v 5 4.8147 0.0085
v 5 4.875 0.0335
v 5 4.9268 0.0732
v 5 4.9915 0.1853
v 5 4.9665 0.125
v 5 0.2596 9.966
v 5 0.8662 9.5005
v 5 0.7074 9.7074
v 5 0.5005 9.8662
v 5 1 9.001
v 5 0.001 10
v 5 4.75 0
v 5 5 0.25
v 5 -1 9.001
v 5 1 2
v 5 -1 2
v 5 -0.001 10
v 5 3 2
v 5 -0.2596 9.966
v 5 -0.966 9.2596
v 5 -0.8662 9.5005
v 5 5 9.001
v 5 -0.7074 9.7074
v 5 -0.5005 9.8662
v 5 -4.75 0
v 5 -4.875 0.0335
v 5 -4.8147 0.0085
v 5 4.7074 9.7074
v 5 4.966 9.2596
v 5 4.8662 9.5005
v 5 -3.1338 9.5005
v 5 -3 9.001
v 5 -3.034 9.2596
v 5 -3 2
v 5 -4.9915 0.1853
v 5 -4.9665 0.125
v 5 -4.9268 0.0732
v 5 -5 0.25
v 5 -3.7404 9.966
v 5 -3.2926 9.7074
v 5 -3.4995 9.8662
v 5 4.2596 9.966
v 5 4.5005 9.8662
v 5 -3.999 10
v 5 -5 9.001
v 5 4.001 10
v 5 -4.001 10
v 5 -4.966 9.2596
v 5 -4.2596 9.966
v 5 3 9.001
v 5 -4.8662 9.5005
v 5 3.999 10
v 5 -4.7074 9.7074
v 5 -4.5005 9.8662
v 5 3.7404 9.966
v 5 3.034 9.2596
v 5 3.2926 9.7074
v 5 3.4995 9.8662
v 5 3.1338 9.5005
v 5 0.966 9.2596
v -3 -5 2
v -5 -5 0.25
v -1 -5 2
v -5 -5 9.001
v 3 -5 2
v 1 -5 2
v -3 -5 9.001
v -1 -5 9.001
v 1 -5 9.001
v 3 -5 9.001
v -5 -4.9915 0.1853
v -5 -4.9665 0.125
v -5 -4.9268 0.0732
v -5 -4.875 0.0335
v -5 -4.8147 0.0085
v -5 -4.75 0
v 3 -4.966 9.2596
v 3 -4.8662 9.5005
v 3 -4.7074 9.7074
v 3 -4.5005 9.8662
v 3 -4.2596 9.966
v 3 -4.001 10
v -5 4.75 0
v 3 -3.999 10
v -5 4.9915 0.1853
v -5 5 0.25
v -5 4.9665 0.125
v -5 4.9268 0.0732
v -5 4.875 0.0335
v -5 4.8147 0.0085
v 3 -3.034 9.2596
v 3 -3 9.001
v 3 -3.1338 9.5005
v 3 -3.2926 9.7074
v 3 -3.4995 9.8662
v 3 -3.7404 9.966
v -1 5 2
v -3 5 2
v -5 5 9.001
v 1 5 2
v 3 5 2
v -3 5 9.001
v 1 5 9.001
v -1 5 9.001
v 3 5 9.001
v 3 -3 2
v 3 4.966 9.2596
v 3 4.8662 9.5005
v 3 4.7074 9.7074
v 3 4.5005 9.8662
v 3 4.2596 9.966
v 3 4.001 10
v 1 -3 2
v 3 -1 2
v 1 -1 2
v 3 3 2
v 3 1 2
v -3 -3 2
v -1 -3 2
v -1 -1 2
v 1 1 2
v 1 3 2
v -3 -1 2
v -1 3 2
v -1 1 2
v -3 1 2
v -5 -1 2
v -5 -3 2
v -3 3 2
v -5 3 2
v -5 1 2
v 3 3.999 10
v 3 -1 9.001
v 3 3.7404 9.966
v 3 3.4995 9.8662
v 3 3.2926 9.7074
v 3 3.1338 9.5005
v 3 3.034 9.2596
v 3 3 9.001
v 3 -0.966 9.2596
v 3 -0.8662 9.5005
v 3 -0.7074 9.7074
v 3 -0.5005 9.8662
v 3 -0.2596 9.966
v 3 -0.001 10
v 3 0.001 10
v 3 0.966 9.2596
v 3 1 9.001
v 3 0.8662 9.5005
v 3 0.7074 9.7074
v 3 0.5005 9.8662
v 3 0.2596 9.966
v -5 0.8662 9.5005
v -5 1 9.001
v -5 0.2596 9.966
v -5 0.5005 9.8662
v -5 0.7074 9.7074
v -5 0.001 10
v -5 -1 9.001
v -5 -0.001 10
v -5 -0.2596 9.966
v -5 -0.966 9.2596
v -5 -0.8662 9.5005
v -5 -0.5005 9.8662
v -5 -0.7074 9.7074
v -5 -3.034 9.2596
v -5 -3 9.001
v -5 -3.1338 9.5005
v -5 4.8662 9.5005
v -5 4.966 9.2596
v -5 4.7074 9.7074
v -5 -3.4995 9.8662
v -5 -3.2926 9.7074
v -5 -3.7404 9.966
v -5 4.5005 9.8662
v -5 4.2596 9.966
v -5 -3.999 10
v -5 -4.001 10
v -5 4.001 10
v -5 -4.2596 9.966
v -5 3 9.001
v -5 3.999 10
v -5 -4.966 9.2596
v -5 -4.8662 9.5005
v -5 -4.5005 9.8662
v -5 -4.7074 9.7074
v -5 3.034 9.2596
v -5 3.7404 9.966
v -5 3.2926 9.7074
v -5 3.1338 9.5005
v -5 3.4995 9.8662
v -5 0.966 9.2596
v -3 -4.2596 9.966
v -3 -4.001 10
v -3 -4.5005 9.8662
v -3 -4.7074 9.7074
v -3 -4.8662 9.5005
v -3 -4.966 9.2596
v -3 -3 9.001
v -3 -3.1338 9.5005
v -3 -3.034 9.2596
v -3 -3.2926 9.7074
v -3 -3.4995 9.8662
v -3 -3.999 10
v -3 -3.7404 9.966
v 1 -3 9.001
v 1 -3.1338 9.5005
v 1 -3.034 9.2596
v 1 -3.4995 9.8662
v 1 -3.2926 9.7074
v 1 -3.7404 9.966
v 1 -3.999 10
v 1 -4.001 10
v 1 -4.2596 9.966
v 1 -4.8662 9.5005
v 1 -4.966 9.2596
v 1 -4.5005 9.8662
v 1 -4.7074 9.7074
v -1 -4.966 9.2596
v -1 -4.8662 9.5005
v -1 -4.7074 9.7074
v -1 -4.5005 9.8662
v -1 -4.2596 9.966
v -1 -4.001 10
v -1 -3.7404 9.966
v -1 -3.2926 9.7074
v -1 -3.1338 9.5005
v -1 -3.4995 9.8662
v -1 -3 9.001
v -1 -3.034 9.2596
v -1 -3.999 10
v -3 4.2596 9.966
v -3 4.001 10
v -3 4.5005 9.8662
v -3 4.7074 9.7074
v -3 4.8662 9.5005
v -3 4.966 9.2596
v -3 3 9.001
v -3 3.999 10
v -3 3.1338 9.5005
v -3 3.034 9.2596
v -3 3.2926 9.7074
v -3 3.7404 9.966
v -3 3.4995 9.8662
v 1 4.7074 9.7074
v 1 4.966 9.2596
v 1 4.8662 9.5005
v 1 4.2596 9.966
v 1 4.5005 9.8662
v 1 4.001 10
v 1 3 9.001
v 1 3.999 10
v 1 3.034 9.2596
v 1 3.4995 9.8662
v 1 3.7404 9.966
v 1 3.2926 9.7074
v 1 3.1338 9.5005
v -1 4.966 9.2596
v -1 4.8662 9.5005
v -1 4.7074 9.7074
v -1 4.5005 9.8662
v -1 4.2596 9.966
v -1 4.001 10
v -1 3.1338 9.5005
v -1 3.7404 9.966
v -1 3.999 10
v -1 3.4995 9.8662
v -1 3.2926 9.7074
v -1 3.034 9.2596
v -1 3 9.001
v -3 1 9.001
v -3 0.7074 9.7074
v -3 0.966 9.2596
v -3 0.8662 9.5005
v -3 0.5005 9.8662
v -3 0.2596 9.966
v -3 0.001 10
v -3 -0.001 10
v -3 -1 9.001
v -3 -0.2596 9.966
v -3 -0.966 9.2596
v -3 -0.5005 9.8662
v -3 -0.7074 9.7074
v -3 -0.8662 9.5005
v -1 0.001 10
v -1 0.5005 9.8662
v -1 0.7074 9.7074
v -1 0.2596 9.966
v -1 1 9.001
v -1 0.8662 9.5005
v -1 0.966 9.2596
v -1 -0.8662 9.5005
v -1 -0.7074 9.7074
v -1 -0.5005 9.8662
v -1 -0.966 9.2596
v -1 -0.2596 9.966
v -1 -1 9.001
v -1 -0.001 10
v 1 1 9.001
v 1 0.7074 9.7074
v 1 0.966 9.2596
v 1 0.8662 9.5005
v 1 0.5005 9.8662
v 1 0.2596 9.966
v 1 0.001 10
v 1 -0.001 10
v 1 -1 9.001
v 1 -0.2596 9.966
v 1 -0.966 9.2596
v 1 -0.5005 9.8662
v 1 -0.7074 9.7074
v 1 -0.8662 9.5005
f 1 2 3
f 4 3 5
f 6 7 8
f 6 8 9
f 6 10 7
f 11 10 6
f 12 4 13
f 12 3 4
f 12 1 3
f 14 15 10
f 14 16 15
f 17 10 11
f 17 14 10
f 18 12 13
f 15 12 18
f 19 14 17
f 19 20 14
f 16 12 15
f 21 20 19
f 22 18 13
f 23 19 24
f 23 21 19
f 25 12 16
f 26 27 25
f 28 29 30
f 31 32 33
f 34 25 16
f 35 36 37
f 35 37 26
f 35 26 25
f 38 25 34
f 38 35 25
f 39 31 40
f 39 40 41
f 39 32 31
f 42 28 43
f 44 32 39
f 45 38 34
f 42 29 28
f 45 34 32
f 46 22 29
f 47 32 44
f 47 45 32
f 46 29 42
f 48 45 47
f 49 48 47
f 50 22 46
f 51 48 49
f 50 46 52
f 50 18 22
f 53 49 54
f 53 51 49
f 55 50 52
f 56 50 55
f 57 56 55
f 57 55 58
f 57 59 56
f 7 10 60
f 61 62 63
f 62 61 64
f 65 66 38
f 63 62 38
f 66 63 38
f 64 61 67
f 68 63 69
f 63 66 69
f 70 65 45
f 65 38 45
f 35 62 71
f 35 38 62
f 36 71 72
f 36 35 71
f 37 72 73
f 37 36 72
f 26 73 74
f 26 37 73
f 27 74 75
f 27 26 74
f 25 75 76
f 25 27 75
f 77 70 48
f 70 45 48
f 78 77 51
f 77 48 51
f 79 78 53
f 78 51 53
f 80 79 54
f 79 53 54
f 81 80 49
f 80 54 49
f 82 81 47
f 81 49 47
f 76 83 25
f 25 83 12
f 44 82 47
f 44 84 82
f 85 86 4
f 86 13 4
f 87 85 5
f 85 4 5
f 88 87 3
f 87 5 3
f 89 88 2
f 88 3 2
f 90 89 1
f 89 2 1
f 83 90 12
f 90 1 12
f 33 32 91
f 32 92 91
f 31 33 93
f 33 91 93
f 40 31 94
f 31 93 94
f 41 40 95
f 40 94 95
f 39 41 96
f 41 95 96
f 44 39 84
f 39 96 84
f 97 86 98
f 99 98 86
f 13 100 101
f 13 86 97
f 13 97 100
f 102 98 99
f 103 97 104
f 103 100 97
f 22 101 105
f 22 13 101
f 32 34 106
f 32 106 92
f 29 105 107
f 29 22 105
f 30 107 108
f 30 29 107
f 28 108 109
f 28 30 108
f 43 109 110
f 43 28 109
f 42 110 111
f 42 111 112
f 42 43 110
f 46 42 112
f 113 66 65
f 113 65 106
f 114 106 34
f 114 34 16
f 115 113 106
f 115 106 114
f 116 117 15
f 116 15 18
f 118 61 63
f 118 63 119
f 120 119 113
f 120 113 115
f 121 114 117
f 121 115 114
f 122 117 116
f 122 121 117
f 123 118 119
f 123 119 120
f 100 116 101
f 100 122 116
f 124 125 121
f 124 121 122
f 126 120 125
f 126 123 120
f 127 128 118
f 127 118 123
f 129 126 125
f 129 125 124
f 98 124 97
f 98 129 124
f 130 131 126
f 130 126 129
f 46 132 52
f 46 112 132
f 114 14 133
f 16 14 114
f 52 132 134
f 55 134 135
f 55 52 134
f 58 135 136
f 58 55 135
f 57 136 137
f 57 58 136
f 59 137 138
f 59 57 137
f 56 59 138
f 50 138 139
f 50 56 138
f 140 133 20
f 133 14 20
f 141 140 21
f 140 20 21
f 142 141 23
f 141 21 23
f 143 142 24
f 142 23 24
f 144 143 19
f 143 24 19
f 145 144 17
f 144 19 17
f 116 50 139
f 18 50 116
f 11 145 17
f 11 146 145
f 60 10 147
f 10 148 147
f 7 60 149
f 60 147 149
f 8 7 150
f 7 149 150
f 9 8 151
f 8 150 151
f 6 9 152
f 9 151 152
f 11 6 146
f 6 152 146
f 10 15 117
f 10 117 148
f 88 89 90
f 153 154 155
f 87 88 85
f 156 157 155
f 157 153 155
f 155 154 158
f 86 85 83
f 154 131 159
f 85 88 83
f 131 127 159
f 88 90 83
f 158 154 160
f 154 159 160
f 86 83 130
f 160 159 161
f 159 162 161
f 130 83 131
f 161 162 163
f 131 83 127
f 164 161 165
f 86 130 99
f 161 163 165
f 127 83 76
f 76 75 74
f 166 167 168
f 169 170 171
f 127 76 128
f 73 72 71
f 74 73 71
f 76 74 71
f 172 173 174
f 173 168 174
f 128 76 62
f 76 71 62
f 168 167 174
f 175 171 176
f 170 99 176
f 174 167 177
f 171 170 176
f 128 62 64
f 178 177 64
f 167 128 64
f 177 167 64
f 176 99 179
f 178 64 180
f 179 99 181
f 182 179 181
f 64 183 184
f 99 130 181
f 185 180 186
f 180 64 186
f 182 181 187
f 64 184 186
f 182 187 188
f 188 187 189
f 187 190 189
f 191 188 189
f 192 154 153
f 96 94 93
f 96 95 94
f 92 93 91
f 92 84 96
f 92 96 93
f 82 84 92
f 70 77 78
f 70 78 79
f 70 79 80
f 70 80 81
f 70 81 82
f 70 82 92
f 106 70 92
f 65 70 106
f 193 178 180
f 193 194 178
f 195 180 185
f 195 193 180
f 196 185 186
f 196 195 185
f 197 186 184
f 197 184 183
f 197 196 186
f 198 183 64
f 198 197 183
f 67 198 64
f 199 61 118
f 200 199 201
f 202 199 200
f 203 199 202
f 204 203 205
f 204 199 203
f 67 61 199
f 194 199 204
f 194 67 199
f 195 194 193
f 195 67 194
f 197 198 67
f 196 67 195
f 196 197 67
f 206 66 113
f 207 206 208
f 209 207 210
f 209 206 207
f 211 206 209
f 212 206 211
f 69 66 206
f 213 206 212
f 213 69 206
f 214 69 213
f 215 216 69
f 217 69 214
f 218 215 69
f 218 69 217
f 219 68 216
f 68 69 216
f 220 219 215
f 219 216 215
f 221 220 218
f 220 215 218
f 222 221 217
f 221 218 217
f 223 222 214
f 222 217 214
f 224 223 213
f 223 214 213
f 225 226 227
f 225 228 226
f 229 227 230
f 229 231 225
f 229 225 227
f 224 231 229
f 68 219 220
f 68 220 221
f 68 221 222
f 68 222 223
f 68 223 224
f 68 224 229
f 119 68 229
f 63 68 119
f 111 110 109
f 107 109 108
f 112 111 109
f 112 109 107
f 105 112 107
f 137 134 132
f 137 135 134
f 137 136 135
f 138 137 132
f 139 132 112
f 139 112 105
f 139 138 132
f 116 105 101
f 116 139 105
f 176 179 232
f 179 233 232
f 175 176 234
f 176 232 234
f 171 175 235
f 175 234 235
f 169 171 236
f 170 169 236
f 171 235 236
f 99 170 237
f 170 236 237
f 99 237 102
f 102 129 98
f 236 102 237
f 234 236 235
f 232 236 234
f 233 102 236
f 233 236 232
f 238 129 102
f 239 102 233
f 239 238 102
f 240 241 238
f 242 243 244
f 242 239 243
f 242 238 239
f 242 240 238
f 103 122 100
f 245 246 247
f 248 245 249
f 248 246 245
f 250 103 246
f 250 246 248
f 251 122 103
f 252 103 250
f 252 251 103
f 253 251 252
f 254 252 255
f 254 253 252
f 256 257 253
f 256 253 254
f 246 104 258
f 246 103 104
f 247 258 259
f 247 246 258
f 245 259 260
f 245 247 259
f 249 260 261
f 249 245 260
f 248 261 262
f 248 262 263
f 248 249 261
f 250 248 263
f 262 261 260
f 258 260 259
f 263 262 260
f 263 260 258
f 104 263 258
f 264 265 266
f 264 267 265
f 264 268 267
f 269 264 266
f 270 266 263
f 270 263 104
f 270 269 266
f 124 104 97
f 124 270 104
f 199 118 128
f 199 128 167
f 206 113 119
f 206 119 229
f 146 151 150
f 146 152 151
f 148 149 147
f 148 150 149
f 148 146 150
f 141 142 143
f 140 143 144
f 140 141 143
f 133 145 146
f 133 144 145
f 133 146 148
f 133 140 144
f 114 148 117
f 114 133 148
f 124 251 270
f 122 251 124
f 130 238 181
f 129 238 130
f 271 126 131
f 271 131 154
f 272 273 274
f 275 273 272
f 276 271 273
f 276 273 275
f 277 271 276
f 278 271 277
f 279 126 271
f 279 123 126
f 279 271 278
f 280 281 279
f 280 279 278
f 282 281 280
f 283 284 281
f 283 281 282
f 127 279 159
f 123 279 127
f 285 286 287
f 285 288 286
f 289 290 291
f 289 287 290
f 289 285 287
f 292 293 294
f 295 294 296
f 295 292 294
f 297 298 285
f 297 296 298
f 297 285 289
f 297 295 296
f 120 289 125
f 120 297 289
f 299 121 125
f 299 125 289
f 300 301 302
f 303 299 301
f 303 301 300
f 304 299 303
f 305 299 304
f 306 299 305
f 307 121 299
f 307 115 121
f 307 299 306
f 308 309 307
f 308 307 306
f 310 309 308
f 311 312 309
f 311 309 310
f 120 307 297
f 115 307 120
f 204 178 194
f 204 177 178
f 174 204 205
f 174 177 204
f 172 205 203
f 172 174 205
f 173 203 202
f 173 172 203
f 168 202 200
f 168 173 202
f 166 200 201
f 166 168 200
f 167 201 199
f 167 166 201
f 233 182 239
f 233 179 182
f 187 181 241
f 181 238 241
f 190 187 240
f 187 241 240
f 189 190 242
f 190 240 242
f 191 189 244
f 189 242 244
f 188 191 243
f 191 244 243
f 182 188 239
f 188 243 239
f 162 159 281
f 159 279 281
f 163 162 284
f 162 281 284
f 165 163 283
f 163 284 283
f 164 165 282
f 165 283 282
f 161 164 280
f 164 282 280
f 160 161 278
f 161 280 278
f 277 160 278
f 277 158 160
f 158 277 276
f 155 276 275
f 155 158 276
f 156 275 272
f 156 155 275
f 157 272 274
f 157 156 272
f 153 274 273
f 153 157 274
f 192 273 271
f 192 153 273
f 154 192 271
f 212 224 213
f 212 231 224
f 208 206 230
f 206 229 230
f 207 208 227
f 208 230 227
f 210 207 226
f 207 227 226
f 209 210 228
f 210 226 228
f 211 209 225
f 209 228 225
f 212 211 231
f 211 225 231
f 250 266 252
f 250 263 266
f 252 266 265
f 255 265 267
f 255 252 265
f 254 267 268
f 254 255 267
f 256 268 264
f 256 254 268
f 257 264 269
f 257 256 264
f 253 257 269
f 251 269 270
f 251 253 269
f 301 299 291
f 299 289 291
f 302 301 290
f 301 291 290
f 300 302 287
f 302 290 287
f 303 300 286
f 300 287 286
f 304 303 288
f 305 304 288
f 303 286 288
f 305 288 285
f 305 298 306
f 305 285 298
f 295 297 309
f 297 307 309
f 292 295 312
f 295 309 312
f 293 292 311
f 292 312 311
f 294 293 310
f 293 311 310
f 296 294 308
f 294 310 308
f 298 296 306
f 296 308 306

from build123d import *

# Parameters (mm, degrees)
BOX_W                  = 10
BOX_H                  = 10
BOX_DEPTH              = 10
SKETCH_W               = 2
SKETCH_H               = 10
POCKET_DEPTH           = 10.001
LINEARPATTERN_COUNT    = 2
LINEARPATTERN_PITCH    = 4
SKETCH001_W            = 2
SKETCH001_H            = 10
POCKET001_DEPTH        = 10.001
LINEARPATTERN001_COUNT = 2
LINEARPATTERN001_PITCH = 4
FILLET_R               = 0.999
FILLET001_R            = 0.25


with BuildPart() as part:
    # Box → Box (new body)
    with BuildSketch(Plane(origin=(-5, -5, 0), x_dir=(1, 0, 0), z_dir=(0, 0, 1))):
        with Locations((5, 5)):
            Rectangle(BOX_W, BOX_H)
    extrude(amount=BOX_DEPTH)

    # Sketch → Pocket (cut, through all)
    with BuildSketch(Plane(origin=(-5, -5, 0), x_dir=(1, 0, 0), z_dir=(0, -1, 0))):
        with Locations((3, 7)):
            Rectangle(SKETCH_W, SKETCH_H)
    pocket = extrude(amount=-POCKET_DEPTH, mode=Mode.SUBTRACT)

    # LinearPattern: Pocket ×2
    with Locations(*[(i * LINEARPATTERN_PITCH, 0, 0) for i in range(1, LINEARPATTERN_COUNT)]):
        add(pocket, mode=Mode.SUBTRACT)

    # Sketch001 → Pocket001 (cut, through all)
    with BuildSketch(Plane(origin=(5, -5, 0), x_dir=(0, 1, 0), z_dir=(1, 0, 0))):
        with Locations((3, 7)):
            Rectangle(SKETCH001_W, SKETCH001_H)
    pocket001 = extrude(amount=-POCKET001_DEPTH, mode=Mode.SUBTRACT)

    # LinearPattern001: Pocket001 ×2
    with Locations(*[(0, i * LINEARPATTERN001_PITCH, 0) for i in range(1, LINEARPATTERN001_COUNT)]):
        add(pocket001, mode=Mode.SUBTRACT)

    # Fillet
    fillet_edges = [part.edges().sort_by_distance(p)[0] for p in [
        (-4, -5, 10),
        (-4, -3, 10),
        (0, -5, 10),
        (0, -3, 10),
        (4, -5, 10),
        (4, -3, 10),
        (4, -1, 10),
        (4, 1, 10),
        (0, 1, 10),
        (0, -1, 10),
        (-4, -1, 10),
        (-4, 1, 10),
        (-4, 3, 10),
        (-4, 5, 10),
        (0, 5, 10),
        (0, 3, 10),
        (4, 5, 10),
        (4, 3, 10),
    ]]
    fillet(fillet_edges, radius=FILLET_R)

    # Fillet001
    fillet001_edges = [part.edges().sort_by_distance(p)[0] for p in [
        (0, -5, 0),
        (0, 5, 0),
    ]]
    fillet(fillet001_edges, radius=FILLET001_R)


solid = part.part
